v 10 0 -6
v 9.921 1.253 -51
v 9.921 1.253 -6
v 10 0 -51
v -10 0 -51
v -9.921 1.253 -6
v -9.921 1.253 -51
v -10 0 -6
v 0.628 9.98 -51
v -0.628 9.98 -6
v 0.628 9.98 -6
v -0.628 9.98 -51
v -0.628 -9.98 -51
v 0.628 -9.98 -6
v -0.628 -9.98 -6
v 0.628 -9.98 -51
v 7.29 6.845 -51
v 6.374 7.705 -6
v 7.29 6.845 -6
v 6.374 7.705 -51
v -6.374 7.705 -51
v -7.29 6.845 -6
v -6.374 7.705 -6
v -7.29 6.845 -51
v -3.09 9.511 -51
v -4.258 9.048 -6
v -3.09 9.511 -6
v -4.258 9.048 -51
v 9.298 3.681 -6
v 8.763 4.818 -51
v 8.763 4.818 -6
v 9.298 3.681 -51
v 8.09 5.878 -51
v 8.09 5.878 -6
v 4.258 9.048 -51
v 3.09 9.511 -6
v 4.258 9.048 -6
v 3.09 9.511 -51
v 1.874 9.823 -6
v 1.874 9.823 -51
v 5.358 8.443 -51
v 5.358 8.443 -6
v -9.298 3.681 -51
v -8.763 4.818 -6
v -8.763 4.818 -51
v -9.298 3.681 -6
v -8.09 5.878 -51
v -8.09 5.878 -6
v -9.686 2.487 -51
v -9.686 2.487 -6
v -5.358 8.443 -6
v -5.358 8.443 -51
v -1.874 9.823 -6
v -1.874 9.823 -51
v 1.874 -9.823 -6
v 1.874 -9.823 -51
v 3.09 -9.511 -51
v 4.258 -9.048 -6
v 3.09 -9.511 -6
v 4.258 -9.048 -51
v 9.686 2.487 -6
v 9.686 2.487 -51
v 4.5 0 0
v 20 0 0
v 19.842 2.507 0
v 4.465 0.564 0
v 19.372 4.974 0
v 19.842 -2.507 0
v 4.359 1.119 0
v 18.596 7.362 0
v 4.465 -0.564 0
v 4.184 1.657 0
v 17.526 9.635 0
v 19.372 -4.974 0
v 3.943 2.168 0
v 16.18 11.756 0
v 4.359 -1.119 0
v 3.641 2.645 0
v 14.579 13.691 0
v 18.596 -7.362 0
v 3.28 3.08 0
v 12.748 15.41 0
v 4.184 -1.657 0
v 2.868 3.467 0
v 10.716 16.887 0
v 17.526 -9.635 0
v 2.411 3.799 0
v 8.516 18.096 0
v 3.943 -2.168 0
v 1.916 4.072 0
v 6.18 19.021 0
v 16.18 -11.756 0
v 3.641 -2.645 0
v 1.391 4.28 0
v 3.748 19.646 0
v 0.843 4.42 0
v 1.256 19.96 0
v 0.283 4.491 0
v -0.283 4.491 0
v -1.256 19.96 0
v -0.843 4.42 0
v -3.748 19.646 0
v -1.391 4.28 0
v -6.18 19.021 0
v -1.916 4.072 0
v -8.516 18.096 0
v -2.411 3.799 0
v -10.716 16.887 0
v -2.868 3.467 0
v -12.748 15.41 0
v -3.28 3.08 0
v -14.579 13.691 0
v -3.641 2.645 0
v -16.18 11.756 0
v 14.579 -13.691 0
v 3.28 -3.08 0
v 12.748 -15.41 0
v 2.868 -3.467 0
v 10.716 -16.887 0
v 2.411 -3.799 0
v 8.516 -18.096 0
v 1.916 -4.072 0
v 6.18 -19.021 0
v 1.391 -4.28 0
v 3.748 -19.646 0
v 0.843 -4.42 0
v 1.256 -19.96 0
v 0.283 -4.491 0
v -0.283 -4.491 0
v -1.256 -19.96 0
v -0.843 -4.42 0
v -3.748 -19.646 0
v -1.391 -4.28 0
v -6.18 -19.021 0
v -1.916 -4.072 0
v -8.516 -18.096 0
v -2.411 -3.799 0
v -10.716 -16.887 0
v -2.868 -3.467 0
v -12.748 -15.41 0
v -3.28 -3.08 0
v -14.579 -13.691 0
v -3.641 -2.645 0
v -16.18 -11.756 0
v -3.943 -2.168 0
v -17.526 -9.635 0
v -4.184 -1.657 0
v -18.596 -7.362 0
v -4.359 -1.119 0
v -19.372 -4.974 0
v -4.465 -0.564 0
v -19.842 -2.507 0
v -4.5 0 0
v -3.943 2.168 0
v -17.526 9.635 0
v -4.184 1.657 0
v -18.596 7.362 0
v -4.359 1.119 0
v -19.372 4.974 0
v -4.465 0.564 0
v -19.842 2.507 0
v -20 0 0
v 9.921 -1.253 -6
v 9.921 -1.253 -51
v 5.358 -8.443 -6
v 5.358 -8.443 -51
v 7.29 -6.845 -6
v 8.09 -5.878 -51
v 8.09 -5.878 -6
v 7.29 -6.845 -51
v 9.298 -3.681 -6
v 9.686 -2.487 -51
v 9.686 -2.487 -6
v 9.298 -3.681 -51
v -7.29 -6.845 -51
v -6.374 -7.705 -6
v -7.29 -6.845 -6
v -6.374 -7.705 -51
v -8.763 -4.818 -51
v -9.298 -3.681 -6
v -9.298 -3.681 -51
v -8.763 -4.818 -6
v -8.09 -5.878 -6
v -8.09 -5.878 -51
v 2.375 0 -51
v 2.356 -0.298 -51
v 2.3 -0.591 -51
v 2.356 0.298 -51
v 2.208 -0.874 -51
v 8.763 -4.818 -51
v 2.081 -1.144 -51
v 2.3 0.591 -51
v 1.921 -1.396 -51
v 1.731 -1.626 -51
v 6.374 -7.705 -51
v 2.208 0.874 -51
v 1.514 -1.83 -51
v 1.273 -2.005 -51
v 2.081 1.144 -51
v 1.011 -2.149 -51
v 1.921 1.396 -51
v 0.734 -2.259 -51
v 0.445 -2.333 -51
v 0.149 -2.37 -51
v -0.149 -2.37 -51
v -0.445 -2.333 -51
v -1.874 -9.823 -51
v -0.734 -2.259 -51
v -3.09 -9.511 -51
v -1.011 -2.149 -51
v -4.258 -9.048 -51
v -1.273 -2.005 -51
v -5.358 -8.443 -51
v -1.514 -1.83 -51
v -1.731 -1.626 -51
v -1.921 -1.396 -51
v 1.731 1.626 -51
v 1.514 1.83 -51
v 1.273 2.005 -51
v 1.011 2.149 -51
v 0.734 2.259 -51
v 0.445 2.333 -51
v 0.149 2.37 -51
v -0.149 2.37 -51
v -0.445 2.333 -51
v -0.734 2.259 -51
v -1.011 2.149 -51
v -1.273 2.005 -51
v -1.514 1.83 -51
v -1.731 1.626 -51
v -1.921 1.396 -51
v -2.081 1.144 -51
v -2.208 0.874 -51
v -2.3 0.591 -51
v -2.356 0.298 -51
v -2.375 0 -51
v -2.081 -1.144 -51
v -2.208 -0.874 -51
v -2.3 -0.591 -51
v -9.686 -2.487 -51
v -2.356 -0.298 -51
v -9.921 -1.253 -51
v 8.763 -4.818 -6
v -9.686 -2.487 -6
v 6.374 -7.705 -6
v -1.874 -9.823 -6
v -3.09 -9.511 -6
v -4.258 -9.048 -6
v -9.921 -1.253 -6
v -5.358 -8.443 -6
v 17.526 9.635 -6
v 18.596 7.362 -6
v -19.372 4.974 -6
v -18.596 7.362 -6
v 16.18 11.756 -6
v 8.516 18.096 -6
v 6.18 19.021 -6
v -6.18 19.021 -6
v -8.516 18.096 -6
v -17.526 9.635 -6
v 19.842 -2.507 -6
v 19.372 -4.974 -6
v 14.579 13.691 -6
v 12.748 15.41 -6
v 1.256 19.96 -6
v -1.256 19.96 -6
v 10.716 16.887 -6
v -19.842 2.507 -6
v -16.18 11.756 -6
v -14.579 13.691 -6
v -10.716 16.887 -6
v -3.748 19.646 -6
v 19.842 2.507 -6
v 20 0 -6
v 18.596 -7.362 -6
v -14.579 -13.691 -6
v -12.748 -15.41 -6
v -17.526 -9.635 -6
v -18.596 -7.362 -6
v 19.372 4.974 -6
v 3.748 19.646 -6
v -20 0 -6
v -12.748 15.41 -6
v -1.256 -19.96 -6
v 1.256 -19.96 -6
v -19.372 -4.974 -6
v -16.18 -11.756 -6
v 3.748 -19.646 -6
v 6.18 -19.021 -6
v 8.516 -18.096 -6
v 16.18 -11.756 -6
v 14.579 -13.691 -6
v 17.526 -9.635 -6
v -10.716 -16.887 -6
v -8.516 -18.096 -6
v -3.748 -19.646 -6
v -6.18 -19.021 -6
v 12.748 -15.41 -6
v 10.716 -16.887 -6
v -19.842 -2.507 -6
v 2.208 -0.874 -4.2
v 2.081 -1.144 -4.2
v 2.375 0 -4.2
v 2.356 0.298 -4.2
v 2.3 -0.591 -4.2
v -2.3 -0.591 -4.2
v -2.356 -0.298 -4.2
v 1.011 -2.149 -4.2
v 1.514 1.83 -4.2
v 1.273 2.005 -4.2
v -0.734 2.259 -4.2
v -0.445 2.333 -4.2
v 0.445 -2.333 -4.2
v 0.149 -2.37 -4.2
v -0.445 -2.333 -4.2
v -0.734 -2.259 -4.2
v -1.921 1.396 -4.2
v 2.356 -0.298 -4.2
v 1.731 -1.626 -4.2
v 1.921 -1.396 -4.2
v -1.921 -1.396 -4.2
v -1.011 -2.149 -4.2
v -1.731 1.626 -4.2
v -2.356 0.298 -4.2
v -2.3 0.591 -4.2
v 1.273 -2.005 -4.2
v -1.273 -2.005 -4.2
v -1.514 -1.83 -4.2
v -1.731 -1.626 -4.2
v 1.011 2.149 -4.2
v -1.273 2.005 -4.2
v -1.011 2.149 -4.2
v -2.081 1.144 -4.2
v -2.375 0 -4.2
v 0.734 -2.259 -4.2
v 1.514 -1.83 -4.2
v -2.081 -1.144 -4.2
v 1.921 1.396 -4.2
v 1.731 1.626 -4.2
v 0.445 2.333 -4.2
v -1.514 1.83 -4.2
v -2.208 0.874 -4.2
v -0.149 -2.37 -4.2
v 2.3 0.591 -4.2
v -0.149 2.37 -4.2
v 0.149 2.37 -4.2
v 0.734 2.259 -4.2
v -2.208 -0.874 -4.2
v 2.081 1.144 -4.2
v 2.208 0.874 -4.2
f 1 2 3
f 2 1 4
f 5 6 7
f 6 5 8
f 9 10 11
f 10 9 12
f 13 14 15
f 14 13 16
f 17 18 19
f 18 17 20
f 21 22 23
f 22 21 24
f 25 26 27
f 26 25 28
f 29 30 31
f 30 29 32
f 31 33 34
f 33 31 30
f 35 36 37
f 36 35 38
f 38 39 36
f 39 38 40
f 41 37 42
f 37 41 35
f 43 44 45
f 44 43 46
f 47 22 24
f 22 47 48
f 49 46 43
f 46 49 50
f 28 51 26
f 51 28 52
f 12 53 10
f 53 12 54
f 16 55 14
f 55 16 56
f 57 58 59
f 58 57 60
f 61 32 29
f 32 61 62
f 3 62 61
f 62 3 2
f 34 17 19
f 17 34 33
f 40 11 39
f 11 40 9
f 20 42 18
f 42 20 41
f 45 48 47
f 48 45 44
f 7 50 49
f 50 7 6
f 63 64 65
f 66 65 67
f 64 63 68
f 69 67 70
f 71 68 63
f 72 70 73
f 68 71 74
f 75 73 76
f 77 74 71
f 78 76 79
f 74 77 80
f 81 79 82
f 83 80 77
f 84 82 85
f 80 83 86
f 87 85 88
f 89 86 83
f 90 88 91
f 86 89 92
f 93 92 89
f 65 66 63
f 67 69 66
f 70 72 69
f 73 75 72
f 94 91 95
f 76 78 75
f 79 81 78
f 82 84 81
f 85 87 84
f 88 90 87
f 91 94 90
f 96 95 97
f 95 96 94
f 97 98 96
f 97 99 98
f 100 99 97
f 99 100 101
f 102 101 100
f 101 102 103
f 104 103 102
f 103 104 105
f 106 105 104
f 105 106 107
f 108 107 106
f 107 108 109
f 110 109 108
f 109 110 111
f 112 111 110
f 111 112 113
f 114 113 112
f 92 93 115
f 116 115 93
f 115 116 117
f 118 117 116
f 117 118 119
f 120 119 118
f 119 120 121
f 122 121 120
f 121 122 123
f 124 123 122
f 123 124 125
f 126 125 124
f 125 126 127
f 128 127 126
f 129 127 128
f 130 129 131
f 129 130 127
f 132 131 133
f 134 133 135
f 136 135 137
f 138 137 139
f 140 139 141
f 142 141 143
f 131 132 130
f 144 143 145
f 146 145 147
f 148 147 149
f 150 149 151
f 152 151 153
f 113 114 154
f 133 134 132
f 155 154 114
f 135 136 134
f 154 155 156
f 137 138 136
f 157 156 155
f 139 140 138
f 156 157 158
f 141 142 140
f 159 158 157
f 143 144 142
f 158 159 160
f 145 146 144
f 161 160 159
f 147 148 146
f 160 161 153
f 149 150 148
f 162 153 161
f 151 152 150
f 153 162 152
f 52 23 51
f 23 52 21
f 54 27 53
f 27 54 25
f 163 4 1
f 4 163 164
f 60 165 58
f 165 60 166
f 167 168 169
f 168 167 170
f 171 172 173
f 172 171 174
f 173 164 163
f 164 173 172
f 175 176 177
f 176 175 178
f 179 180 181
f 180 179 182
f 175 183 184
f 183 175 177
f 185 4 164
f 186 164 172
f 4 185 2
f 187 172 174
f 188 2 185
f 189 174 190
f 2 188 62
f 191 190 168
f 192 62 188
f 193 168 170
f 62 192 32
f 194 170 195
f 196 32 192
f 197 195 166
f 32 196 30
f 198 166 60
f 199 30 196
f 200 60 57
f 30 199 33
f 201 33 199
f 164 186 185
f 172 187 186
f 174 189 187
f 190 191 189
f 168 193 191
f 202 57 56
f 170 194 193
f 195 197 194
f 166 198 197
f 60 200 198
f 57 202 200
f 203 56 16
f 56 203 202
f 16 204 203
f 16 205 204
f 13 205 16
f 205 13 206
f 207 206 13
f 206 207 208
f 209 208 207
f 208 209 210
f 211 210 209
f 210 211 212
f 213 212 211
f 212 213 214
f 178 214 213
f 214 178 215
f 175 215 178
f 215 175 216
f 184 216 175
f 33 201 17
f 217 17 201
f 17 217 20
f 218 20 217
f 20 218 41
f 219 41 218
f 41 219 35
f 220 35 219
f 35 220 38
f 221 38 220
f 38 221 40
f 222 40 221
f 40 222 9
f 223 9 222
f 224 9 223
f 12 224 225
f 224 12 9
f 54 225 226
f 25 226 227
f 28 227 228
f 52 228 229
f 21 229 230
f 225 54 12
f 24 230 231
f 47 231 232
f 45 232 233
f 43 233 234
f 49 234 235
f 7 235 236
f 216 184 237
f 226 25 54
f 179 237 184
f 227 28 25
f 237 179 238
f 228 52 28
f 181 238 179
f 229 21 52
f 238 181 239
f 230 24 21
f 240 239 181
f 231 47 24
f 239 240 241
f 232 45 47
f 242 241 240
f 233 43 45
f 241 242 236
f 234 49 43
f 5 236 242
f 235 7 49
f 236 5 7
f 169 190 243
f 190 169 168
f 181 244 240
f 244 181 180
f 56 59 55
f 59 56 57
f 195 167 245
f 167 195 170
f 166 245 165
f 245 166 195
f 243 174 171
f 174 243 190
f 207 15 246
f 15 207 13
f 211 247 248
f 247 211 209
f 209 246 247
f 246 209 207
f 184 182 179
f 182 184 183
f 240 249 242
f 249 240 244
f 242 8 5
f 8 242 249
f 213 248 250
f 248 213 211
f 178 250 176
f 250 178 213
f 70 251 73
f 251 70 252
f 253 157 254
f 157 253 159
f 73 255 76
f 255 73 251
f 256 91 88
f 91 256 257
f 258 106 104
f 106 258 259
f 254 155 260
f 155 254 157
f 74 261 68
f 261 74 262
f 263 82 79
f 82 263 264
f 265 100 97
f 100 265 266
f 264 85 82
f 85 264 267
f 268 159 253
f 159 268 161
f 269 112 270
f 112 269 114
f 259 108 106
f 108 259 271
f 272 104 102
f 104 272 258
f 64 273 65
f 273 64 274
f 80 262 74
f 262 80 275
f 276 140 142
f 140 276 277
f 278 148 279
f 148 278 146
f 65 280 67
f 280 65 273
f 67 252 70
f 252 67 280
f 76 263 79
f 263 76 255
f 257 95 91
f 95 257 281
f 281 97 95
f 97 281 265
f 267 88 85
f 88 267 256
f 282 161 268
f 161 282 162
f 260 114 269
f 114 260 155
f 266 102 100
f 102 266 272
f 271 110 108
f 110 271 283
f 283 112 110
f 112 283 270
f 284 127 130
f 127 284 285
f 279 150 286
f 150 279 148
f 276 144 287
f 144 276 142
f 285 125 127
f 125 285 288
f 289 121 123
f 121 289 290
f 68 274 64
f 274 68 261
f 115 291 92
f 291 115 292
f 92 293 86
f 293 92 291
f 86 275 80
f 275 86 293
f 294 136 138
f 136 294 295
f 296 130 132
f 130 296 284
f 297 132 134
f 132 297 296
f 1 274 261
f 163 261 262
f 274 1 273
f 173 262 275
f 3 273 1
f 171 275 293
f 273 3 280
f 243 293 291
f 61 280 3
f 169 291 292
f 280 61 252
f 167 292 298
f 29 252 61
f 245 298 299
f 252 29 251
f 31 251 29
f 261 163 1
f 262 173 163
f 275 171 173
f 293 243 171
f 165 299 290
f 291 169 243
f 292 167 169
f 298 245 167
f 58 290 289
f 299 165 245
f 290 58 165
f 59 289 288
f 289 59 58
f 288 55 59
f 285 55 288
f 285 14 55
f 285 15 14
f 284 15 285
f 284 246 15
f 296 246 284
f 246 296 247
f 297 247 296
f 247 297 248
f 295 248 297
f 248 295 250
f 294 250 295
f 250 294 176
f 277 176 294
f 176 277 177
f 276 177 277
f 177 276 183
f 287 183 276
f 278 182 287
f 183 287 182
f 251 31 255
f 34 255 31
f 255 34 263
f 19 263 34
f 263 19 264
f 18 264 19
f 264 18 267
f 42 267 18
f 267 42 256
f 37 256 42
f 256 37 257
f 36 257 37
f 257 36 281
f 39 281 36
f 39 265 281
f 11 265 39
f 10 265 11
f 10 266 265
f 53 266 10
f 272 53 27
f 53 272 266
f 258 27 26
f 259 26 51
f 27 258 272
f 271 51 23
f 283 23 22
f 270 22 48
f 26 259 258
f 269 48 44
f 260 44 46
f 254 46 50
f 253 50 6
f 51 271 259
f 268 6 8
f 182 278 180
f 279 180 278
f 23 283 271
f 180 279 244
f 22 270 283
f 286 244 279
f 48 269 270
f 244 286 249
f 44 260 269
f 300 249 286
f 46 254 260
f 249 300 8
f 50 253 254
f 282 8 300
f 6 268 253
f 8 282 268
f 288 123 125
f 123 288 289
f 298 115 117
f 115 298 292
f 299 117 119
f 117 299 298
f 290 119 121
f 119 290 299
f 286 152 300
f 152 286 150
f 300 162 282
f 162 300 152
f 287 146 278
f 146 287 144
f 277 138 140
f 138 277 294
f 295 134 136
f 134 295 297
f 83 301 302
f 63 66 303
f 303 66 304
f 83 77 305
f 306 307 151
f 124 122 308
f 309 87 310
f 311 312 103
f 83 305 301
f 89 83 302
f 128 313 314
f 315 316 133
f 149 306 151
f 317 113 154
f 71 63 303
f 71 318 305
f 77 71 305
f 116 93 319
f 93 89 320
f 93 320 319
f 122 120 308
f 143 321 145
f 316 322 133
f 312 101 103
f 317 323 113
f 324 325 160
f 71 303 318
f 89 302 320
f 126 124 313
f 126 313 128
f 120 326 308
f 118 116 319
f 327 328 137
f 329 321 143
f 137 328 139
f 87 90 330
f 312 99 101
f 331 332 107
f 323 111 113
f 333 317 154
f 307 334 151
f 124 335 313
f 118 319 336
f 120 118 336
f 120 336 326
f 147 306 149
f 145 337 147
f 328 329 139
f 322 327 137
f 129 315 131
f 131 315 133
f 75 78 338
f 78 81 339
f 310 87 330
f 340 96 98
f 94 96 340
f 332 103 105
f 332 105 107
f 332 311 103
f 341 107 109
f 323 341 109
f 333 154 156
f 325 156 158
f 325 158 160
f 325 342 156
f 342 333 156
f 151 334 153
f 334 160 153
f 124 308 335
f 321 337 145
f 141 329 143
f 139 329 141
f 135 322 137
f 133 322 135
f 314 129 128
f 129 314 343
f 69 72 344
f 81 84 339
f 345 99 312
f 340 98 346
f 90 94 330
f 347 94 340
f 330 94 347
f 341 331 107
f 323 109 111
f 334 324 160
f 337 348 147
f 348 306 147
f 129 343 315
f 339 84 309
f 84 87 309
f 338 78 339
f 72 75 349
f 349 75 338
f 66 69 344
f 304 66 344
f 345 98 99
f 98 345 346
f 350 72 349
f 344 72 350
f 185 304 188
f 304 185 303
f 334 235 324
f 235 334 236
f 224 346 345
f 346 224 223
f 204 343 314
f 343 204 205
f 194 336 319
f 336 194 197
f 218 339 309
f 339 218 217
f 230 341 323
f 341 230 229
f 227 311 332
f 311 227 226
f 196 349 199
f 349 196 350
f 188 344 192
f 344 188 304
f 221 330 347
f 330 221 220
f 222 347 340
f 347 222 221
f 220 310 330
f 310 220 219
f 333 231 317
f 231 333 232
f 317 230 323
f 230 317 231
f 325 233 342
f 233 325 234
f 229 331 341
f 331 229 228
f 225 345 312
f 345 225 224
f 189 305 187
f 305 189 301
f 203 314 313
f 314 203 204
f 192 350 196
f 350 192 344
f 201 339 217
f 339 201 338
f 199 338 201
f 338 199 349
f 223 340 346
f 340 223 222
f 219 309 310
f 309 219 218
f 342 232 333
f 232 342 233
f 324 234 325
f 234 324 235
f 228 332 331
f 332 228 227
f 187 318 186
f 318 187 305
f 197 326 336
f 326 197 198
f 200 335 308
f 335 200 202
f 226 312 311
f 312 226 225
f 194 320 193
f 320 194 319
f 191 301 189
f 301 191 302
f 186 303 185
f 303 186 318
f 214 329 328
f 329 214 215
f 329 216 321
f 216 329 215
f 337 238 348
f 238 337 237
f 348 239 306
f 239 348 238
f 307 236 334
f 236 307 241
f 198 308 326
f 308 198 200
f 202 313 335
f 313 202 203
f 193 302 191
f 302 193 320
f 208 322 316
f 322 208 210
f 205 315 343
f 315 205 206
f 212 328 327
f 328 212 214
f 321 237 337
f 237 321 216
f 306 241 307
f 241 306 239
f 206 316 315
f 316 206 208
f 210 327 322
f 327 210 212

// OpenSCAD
$fn = 50;


difference() {
	union() {
		translate(v = [0, 0, -51.0000000000]) {
			cylinder(h = 51, r = 10.0000000000);
		}
		translate(v = [0, 0, -6.0000000000]) {
			cylinder(h = 6, r = 20.0000000000);
		}
	}
	union() {
		translate(v = [0, 0, 0]) {
			rotate(a = [0, 0, 0]) {
				difference() {
					union() {
						#translate(v = [0, 0, -51.0000000000]) {
							cylinder(h = 51, r = 2.2500000000);
						}
						#translate(v = [0, 0, -4.2000000000]) {
							cylinder(h = 4.2000000000, r1 = 2.3750000000, r2 = 4.5000000000);
						}
						#translate(v = [0, 0, -51.0000000000]) {
							cylinder(h = 51, r = 2.3750000000);
						}
						#translate(v = [0, 0, -51.0000000000]) {
							cylinder(h = 51, r = 2.2500000000);
						}
					}
					union();
				}
			}
		}
	}
}
